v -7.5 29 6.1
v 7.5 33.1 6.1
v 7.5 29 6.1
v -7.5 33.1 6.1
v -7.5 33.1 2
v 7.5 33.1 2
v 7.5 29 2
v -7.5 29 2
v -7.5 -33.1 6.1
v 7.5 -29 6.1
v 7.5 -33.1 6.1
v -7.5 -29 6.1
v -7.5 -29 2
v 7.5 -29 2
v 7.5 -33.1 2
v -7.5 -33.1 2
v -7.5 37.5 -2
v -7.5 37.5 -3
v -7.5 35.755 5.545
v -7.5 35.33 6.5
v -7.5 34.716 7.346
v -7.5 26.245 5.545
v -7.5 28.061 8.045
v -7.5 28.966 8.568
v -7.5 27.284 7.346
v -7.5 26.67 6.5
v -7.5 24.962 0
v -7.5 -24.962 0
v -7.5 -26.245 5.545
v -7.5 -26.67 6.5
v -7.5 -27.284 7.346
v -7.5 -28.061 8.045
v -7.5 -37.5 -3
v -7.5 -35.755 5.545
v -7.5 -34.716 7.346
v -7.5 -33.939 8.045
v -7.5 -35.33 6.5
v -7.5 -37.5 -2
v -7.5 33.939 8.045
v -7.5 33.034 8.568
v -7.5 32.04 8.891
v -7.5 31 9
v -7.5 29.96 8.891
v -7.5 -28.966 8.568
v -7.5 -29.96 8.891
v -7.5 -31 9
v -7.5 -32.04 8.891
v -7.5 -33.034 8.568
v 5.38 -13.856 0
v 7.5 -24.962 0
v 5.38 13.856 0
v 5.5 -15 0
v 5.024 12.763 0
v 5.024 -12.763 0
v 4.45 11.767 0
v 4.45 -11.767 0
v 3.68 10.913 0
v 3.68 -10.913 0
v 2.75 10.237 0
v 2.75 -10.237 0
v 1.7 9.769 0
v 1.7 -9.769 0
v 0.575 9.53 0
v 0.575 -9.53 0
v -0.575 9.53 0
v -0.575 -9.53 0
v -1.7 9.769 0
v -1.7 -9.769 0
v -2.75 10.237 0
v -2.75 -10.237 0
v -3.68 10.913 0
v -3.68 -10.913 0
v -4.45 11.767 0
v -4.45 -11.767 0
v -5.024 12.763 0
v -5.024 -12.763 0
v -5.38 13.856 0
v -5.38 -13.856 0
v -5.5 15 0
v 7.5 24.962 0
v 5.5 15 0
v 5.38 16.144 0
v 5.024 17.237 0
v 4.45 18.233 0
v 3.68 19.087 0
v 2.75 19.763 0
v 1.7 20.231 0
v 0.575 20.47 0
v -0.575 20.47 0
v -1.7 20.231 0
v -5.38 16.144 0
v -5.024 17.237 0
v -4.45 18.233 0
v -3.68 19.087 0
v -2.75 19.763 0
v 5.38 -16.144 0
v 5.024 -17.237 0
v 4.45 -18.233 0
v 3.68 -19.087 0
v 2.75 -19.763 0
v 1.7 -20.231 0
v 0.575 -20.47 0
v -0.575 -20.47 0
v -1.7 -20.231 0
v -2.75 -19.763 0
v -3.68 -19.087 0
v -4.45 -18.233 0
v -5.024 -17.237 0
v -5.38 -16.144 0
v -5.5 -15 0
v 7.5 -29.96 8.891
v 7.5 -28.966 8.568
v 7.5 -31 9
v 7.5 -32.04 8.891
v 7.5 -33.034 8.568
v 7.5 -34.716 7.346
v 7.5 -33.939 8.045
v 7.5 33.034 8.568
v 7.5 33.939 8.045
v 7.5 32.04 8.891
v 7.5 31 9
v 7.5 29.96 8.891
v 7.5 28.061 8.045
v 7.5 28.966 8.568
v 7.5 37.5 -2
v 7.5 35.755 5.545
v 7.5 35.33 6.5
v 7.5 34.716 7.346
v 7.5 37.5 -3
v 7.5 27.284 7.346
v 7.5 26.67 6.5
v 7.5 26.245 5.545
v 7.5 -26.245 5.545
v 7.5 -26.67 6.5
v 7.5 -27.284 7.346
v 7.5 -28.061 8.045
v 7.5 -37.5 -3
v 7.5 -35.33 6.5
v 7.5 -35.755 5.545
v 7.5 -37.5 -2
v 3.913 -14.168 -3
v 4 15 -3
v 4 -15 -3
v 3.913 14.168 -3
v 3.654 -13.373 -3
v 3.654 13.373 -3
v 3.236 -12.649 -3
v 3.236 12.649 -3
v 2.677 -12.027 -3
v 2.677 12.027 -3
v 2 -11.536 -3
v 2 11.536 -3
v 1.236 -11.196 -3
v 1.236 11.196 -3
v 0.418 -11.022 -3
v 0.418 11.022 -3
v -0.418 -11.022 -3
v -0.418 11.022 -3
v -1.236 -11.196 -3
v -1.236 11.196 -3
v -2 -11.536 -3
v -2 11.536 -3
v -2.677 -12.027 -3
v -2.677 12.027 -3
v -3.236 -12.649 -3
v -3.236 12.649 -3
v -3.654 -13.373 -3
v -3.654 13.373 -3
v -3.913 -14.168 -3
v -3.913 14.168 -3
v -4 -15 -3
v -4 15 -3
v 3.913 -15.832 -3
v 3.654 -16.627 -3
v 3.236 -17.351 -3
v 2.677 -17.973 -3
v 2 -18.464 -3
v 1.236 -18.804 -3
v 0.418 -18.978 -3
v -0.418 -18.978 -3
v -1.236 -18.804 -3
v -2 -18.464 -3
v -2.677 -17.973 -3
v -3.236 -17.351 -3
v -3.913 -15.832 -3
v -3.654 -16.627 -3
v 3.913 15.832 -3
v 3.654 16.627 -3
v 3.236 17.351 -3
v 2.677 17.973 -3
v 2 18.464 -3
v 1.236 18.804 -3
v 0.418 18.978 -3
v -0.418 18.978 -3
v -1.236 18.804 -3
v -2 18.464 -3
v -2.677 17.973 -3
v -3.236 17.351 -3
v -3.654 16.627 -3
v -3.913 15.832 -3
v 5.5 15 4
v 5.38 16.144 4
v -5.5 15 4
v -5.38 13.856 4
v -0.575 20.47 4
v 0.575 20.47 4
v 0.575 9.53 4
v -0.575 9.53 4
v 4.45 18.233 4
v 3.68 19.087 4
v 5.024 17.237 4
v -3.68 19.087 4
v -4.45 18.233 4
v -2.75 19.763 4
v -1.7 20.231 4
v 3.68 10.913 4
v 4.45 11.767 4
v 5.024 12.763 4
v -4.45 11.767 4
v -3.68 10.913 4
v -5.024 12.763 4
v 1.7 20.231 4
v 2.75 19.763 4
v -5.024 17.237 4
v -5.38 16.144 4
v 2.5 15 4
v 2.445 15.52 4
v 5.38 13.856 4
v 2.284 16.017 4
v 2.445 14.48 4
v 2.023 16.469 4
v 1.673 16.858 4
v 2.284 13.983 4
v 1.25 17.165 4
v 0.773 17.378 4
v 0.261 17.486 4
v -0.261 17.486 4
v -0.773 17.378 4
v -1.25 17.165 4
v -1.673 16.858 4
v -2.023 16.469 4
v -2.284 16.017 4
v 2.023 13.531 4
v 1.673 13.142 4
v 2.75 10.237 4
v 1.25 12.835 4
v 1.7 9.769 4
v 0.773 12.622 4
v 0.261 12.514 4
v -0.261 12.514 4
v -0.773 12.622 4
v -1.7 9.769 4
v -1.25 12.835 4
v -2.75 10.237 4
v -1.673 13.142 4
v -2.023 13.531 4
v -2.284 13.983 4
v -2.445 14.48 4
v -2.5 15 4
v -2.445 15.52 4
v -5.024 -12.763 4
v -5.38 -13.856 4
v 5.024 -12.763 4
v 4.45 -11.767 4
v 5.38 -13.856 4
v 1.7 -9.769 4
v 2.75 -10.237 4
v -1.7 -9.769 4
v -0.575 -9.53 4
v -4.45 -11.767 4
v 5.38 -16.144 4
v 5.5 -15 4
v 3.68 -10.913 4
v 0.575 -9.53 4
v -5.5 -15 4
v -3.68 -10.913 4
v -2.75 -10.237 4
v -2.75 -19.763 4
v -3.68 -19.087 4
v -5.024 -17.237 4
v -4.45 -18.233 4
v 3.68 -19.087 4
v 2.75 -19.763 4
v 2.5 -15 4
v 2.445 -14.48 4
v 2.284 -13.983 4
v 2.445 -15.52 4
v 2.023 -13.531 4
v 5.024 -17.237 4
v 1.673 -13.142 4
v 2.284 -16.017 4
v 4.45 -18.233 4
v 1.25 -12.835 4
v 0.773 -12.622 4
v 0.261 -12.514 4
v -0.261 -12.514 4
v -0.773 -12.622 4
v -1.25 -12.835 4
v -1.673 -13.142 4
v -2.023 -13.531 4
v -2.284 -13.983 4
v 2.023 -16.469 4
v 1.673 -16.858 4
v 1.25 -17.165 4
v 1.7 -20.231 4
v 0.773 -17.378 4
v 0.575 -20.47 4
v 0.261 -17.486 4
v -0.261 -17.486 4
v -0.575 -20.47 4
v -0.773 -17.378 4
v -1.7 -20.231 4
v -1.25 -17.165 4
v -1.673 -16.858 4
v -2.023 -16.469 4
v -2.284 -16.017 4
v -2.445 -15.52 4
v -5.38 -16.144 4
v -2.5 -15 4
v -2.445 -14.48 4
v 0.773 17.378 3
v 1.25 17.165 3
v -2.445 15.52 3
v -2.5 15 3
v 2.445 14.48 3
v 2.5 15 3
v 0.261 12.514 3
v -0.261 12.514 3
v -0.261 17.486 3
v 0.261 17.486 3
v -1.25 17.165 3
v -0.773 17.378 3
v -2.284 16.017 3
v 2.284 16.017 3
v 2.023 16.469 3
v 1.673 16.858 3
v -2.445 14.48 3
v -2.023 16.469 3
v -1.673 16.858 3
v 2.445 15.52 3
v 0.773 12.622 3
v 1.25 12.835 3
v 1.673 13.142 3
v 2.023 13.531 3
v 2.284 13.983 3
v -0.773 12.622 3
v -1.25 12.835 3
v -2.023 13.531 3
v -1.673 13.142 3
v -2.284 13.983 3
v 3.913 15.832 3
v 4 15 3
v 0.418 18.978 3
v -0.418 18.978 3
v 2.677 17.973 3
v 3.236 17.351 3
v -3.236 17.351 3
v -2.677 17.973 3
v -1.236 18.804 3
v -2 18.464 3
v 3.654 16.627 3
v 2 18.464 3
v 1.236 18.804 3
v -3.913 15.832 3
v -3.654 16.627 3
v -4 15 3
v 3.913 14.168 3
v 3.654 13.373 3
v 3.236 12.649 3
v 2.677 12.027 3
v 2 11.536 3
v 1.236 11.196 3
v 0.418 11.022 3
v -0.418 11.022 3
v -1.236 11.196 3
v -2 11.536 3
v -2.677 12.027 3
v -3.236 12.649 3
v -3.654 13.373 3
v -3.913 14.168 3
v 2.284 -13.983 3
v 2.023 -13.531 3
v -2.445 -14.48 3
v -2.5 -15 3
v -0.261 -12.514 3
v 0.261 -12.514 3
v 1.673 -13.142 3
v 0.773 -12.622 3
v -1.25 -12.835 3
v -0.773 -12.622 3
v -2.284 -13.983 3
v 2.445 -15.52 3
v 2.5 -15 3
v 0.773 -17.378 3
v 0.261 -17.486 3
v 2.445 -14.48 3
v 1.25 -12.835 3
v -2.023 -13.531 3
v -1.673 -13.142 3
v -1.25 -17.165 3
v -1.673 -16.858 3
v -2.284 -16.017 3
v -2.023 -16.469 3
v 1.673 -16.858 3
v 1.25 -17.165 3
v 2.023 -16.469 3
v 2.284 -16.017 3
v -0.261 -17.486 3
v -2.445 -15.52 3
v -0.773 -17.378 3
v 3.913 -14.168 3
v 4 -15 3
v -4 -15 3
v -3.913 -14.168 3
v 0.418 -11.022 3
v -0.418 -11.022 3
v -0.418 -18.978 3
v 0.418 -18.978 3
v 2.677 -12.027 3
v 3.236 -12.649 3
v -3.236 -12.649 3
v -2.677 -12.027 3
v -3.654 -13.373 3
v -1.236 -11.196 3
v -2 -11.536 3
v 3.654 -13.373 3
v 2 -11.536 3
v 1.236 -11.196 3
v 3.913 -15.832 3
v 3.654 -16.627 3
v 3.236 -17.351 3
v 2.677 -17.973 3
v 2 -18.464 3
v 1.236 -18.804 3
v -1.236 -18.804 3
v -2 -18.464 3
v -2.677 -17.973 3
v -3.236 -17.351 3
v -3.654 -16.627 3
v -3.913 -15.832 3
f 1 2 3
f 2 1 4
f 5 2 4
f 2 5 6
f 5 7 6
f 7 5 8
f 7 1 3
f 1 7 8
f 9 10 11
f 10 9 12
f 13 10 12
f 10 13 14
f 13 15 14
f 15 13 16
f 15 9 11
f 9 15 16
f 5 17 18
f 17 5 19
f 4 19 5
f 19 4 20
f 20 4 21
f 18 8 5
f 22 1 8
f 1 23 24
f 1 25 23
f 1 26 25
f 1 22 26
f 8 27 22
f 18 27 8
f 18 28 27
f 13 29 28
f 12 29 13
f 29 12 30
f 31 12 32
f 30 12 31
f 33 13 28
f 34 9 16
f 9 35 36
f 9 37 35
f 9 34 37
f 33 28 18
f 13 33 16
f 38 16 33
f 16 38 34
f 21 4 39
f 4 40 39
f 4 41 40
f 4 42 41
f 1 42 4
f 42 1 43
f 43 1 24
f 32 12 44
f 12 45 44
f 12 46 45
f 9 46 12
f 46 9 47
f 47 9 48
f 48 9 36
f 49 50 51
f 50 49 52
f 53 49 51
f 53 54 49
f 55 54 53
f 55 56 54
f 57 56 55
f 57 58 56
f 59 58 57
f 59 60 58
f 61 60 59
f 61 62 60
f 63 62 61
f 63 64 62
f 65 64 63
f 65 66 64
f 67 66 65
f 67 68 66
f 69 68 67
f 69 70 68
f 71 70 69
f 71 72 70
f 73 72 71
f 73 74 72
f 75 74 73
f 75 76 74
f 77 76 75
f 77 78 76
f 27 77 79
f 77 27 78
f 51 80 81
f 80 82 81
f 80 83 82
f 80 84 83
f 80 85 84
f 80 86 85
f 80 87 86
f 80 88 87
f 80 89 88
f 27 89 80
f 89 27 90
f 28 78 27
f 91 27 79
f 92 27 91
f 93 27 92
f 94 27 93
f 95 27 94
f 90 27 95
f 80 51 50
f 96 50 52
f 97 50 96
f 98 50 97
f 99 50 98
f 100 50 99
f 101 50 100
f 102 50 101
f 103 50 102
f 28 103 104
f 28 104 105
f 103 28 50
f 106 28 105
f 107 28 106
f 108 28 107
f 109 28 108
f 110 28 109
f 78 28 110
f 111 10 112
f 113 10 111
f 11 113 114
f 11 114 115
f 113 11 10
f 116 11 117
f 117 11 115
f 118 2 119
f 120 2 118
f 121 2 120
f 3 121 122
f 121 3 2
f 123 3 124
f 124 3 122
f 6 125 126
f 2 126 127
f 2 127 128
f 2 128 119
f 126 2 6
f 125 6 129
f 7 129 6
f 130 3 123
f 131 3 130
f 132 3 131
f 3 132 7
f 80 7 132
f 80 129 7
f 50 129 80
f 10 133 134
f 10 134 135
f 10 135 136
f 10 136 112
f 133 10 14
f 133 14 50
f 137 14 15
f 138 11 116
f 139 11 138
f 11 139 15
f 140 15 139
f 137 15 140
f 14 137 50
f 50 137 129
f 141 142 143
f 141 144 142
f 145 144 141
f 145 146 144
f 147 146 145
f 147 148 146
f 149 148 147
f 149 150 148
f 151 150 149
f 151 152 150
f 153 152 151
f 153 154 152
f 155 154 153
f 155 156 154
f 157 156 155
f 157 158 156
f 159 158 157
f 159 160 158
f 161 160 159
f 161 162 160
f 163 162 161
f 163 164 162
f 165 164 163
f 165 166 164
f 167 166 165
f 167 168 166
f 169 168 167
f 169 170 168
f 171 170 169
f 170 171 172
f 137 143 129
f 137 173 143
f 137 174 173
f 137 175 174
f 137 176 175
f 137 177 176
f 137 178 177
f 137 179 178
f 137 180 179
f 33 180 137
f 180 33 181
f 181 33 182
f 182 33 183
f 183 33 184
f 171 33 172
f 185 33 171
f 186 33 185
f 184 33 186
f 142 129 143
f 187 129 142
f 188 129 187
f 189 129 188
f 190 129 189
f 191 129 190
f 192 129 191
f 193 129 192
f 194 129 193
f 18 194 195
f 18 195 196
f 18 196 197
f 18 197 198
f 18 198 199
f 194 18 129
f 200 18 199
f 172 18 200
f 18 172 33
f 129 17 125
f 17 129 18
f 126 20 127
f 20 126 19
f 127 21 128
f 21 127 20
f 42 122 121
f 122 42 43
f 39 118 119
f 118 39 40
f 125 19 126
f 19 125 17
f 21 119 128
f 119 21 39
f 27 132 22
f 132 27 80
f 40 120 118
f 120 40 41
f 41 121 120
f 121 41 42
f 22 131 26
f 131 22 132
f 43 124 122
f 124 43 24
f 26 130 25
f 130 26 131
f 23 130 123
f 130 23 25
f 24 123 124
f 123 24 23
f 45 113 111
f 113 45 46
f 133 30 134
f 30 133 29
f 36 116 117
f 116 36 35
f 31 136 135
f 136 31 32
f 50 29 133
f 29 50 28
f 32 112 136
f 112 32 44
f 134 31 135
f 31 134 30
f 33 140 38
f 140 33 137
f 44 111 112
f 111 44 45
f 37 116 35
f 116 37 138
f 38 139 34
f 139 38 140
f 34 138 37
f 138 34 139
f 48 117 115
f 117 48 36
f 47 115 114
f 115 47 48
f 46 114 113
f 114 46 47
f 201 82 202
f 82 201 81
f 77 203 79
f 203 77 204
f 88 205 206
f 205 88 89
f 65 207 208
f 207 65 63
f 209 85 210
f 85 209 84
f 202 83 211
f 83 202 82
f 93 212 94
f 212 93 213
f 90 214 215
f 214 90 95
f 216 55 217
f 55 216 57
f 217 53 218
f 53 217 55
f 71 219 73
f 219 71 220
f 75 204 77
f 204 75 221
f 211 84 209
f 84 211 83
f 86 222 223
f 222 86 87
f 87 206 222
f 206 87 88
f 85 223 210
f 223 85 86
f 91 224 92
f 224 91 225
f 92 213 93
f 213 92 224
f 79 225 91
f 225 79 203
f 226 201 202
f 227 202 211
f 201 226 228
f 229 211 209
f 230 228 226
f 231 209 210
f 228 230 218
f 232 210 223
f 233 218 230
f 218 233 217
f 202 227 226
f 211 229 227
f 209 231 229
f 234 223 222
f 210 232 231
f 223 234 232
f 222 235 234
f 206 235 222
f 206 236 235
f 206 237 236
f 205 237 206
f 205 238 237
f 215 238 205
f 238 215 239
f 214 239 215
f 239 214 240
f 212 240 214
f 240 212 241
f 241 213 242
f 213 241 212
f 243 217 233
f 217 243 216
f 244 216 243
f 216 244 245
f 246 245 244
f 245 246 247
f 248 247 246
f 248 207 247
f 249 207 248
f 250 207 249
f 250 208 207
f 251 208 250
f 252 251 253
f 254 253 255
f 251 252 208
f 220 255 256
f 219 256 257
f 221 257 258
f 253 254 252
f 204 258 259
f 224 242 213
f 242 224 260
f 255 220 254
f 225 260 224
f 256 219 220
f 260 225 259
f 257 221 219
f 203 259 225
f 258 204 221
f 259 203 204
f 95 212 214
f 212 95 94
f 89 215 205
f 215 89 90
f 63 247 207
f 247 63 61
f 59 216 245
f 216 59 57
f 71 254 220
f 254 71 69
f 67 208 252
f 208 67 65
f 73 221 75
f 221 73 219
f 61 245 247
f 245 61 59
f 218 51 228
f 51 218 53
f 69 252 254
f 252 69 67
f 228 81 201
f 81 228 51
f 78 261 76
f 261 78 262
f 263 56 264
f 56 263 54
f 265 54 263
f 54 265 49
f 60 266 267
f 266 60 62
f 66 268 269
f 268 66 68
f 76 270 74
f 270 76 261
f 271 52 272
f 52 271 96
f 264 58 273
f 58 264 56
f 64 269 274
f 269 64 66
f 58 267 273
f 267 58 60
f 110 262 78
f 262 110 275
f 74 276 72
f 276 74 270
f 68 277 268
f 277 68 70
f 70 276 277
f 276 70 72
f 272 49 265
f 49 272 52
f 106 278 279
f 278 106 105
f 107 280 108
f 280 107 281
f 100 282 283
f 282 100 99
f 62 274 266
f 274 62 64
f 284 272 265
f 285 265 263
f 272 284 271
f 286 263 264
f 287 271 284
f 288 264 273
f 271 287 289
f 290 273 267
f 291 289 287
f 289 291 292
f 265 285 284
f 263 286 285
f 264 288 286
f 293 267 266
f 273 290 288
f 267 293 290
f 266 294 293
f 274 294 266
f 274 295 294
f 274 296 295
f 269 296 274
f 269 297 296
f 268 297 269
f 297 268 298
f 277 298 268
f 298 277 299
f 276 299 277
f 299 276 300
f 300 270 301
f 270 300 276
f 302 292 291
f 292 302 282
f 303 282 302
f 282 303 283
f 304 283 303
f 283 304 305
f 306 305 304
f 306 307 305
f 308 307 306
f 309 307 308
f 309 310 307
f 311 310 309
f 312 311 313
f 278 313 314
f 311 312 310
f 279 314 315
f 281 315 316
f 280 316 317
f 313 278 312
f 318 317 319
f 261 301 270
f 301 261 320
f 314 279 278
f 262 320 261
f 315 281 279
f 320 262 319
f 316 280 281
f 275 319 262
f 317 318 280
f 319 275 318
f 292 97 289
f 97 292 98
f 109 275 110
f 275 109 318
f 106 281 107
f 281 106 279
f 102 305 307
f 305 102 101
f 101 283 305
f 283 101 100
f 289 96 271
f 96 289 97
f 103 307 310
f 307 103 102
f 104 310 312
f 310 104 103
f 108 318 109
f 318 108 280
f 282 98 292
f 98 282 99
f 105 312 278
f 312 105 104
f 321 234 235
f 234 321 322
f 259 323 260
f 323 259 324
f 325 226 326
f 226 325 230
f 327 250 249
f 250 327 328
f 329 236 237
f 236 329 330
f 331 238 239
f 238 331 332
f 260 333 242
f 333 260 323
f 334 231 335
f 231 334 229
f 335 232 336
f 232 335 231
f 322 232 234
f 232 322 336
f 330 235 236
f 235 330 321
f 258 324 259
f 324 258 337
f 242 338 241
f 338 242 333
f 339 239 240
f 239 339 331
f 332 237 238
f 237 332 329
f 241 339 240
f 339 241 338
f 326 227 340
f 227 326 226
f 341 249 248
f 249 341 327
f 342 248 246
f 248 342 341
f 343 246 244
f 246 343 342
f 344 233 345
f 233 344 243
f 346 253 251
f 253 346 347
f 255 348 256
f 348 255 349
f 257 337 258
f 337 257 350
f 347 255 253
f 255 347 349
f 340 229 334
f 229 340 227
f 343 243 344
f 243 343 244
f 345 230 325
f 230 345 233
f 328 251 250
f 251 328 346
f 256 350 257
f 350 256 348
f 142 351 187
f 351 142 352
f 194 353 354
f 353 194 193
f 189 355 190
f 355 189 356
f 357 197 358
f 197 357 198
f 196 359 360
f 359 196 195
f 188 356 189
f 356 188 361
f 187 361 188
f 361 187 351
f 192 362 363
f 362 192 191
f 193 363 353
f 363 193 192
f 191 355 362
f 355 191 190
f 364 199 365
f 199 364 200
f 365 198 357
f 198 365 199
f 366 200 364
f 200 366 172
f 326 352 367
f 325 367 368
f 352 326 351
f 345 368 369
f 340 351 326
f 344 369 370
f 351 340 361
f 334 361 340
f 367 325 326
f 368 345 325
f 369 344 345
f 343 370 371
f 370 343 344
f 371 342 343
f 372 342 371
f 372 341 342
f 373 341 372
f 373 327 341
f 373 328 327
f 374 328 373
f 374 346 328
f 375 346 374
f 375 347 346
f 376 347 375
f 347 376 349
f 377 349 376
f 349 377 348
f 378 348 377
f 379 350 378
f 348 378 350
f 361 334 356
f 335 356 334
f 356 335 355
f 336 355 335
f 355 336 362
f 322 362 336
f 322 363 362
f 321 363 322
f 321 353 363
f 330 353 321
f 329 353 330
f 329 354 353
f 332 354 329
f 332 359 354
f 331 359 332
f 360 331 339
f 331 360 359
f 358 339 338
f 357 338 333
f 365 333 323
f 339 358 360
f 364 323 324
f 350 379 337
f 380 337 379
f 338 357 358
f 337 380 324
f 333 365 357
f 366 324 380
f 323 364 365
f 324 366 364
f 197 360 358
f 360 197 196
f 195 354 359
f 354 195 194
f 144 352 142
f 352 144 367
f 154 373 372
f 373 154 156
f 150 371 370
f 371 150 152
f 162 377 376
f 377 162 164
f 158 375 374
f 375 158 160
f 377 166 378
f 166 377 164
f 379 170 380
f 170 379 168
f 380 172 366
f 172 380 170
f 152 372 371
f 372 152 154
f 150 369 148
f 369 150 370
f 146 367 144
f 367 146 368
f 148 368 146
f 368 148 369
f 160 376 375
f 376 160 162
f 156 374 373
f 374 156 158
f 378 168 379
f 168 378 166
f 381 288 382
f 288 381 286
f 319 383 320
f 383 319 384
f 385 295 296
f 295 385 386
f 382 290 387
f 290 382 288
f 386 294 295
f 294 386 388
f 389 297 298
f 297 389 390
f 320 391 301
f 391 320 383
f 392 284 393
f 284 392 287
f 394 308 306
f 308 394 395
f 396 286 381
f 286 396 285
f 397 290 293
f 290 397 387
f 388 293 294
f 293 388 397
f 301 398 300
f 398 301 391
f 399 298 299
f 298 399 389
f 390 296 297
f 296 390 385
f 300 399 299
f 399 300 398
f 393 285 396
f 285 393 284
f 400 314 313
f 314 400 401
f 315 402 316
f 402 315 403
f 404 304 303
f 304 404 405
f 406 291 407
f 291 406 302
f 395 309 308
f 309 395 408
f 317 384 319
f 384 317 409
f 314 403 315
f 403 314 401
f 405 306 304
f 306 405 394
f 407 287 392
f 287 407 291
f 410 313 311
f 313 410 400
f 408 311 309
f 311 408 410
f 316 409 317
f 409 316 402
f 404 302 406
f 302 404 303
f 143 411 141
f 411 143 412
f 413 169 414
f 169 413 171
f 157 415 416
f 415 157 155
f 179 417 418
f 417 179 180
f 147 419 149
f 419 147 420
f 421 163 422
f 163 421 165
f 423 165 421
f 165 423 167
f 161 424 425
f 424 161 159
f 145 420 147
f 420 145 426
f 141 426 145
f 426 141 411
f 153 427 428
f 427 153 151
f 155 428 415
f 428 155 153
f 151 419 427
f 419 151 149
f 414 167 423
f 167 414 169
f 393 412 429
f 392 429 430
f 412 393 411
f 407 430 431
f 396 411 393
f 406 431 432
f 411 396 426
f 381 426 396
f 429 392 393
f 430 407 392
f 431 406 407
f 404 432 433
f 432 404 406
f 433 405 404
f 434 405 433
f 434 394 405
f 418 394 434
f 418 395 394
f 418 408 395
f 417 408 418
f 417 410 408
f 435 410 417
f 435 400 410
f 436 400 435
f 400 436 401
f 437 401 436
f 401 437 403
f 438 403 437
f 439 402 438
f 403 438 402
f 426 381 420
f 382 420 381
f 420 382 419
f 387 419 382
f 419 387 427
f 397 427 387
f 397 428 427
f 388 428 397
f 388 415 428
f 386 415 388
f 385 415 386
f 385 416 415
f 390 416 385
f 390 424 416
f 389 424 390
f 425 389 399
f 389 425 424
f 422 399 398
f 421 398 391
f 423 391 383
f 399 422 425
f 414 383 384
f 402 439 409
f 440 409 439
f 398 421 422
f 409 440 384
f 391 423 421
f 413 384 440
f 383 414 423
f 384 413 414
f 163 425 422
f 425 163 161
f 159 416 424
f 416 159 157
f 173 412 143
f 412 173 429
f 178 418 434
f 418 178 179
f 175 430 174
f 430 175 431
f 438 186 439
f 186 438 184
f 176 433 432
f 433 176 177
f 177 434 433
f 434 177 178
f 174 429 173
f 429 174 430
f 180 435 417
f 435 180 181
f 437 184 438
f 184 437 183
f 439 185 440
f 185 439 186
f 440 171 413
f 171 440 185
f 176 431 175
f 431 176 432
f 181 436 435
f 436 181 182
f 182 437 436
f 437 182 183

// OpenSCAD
t = 5;

rx = 100;
rdy = 4.1;
roy = 36;
royl = 58;





module rails(oz=2) {
    
  translate([-rx/2,roy/2,oz]) cube([rx,rdy,rdy]);
  mirror([0,1,0]){
    translate([-rx/2,roy/2,oz]) cube([rx,rdy,rdy]);
  }
    
}

module railsLow(oz=2) {
    
  translate([-rx/2,royl/2,oz]) cube([rx,rdy,rdy]);
  mirror([0,1,0]){
    translate([-rx/2,royl/2,oz]) cube([rx,rdy,rdy]);
  }
    
}


difference(){
union(){
  translate([-15/2,-73/2,-3])cube([15,73,3]);
    
  hull(){
    translate([-15/2,31,4])rotate([0,90,0])cylinder(r=5,h=15,$fn=30);
    translate([-15/2,31-13/2,-3])cube([15,13,1]);
  }
  hull(){
    translate([-15/2,-31,4])rotate([0,90,0])cylinder(r=5,h=15,$fn=30);
    translate([-15/2,-31-13/2,-3])cube([15,13,1]);
  }
  
  translate([0,+15,0])cylinder(r=5.5,h=4,$fn=30);
  translate([0,-15,0])cylinder(r=5.5,h=4,$fn=30);
}

  translate([0,15,-5])cylinder(r=2.5,h=15,$fn=30);
  translate([0,15,-7])cylinder(r=4,h=10,$fn=30);

  translate([0,-15,-5])cylinder(r=2.5,h=15,$fn=30);
  translate([0,-15,-7])cylinder(r=4,h=10,$fn=30);
railsLow(oz=2);

}
